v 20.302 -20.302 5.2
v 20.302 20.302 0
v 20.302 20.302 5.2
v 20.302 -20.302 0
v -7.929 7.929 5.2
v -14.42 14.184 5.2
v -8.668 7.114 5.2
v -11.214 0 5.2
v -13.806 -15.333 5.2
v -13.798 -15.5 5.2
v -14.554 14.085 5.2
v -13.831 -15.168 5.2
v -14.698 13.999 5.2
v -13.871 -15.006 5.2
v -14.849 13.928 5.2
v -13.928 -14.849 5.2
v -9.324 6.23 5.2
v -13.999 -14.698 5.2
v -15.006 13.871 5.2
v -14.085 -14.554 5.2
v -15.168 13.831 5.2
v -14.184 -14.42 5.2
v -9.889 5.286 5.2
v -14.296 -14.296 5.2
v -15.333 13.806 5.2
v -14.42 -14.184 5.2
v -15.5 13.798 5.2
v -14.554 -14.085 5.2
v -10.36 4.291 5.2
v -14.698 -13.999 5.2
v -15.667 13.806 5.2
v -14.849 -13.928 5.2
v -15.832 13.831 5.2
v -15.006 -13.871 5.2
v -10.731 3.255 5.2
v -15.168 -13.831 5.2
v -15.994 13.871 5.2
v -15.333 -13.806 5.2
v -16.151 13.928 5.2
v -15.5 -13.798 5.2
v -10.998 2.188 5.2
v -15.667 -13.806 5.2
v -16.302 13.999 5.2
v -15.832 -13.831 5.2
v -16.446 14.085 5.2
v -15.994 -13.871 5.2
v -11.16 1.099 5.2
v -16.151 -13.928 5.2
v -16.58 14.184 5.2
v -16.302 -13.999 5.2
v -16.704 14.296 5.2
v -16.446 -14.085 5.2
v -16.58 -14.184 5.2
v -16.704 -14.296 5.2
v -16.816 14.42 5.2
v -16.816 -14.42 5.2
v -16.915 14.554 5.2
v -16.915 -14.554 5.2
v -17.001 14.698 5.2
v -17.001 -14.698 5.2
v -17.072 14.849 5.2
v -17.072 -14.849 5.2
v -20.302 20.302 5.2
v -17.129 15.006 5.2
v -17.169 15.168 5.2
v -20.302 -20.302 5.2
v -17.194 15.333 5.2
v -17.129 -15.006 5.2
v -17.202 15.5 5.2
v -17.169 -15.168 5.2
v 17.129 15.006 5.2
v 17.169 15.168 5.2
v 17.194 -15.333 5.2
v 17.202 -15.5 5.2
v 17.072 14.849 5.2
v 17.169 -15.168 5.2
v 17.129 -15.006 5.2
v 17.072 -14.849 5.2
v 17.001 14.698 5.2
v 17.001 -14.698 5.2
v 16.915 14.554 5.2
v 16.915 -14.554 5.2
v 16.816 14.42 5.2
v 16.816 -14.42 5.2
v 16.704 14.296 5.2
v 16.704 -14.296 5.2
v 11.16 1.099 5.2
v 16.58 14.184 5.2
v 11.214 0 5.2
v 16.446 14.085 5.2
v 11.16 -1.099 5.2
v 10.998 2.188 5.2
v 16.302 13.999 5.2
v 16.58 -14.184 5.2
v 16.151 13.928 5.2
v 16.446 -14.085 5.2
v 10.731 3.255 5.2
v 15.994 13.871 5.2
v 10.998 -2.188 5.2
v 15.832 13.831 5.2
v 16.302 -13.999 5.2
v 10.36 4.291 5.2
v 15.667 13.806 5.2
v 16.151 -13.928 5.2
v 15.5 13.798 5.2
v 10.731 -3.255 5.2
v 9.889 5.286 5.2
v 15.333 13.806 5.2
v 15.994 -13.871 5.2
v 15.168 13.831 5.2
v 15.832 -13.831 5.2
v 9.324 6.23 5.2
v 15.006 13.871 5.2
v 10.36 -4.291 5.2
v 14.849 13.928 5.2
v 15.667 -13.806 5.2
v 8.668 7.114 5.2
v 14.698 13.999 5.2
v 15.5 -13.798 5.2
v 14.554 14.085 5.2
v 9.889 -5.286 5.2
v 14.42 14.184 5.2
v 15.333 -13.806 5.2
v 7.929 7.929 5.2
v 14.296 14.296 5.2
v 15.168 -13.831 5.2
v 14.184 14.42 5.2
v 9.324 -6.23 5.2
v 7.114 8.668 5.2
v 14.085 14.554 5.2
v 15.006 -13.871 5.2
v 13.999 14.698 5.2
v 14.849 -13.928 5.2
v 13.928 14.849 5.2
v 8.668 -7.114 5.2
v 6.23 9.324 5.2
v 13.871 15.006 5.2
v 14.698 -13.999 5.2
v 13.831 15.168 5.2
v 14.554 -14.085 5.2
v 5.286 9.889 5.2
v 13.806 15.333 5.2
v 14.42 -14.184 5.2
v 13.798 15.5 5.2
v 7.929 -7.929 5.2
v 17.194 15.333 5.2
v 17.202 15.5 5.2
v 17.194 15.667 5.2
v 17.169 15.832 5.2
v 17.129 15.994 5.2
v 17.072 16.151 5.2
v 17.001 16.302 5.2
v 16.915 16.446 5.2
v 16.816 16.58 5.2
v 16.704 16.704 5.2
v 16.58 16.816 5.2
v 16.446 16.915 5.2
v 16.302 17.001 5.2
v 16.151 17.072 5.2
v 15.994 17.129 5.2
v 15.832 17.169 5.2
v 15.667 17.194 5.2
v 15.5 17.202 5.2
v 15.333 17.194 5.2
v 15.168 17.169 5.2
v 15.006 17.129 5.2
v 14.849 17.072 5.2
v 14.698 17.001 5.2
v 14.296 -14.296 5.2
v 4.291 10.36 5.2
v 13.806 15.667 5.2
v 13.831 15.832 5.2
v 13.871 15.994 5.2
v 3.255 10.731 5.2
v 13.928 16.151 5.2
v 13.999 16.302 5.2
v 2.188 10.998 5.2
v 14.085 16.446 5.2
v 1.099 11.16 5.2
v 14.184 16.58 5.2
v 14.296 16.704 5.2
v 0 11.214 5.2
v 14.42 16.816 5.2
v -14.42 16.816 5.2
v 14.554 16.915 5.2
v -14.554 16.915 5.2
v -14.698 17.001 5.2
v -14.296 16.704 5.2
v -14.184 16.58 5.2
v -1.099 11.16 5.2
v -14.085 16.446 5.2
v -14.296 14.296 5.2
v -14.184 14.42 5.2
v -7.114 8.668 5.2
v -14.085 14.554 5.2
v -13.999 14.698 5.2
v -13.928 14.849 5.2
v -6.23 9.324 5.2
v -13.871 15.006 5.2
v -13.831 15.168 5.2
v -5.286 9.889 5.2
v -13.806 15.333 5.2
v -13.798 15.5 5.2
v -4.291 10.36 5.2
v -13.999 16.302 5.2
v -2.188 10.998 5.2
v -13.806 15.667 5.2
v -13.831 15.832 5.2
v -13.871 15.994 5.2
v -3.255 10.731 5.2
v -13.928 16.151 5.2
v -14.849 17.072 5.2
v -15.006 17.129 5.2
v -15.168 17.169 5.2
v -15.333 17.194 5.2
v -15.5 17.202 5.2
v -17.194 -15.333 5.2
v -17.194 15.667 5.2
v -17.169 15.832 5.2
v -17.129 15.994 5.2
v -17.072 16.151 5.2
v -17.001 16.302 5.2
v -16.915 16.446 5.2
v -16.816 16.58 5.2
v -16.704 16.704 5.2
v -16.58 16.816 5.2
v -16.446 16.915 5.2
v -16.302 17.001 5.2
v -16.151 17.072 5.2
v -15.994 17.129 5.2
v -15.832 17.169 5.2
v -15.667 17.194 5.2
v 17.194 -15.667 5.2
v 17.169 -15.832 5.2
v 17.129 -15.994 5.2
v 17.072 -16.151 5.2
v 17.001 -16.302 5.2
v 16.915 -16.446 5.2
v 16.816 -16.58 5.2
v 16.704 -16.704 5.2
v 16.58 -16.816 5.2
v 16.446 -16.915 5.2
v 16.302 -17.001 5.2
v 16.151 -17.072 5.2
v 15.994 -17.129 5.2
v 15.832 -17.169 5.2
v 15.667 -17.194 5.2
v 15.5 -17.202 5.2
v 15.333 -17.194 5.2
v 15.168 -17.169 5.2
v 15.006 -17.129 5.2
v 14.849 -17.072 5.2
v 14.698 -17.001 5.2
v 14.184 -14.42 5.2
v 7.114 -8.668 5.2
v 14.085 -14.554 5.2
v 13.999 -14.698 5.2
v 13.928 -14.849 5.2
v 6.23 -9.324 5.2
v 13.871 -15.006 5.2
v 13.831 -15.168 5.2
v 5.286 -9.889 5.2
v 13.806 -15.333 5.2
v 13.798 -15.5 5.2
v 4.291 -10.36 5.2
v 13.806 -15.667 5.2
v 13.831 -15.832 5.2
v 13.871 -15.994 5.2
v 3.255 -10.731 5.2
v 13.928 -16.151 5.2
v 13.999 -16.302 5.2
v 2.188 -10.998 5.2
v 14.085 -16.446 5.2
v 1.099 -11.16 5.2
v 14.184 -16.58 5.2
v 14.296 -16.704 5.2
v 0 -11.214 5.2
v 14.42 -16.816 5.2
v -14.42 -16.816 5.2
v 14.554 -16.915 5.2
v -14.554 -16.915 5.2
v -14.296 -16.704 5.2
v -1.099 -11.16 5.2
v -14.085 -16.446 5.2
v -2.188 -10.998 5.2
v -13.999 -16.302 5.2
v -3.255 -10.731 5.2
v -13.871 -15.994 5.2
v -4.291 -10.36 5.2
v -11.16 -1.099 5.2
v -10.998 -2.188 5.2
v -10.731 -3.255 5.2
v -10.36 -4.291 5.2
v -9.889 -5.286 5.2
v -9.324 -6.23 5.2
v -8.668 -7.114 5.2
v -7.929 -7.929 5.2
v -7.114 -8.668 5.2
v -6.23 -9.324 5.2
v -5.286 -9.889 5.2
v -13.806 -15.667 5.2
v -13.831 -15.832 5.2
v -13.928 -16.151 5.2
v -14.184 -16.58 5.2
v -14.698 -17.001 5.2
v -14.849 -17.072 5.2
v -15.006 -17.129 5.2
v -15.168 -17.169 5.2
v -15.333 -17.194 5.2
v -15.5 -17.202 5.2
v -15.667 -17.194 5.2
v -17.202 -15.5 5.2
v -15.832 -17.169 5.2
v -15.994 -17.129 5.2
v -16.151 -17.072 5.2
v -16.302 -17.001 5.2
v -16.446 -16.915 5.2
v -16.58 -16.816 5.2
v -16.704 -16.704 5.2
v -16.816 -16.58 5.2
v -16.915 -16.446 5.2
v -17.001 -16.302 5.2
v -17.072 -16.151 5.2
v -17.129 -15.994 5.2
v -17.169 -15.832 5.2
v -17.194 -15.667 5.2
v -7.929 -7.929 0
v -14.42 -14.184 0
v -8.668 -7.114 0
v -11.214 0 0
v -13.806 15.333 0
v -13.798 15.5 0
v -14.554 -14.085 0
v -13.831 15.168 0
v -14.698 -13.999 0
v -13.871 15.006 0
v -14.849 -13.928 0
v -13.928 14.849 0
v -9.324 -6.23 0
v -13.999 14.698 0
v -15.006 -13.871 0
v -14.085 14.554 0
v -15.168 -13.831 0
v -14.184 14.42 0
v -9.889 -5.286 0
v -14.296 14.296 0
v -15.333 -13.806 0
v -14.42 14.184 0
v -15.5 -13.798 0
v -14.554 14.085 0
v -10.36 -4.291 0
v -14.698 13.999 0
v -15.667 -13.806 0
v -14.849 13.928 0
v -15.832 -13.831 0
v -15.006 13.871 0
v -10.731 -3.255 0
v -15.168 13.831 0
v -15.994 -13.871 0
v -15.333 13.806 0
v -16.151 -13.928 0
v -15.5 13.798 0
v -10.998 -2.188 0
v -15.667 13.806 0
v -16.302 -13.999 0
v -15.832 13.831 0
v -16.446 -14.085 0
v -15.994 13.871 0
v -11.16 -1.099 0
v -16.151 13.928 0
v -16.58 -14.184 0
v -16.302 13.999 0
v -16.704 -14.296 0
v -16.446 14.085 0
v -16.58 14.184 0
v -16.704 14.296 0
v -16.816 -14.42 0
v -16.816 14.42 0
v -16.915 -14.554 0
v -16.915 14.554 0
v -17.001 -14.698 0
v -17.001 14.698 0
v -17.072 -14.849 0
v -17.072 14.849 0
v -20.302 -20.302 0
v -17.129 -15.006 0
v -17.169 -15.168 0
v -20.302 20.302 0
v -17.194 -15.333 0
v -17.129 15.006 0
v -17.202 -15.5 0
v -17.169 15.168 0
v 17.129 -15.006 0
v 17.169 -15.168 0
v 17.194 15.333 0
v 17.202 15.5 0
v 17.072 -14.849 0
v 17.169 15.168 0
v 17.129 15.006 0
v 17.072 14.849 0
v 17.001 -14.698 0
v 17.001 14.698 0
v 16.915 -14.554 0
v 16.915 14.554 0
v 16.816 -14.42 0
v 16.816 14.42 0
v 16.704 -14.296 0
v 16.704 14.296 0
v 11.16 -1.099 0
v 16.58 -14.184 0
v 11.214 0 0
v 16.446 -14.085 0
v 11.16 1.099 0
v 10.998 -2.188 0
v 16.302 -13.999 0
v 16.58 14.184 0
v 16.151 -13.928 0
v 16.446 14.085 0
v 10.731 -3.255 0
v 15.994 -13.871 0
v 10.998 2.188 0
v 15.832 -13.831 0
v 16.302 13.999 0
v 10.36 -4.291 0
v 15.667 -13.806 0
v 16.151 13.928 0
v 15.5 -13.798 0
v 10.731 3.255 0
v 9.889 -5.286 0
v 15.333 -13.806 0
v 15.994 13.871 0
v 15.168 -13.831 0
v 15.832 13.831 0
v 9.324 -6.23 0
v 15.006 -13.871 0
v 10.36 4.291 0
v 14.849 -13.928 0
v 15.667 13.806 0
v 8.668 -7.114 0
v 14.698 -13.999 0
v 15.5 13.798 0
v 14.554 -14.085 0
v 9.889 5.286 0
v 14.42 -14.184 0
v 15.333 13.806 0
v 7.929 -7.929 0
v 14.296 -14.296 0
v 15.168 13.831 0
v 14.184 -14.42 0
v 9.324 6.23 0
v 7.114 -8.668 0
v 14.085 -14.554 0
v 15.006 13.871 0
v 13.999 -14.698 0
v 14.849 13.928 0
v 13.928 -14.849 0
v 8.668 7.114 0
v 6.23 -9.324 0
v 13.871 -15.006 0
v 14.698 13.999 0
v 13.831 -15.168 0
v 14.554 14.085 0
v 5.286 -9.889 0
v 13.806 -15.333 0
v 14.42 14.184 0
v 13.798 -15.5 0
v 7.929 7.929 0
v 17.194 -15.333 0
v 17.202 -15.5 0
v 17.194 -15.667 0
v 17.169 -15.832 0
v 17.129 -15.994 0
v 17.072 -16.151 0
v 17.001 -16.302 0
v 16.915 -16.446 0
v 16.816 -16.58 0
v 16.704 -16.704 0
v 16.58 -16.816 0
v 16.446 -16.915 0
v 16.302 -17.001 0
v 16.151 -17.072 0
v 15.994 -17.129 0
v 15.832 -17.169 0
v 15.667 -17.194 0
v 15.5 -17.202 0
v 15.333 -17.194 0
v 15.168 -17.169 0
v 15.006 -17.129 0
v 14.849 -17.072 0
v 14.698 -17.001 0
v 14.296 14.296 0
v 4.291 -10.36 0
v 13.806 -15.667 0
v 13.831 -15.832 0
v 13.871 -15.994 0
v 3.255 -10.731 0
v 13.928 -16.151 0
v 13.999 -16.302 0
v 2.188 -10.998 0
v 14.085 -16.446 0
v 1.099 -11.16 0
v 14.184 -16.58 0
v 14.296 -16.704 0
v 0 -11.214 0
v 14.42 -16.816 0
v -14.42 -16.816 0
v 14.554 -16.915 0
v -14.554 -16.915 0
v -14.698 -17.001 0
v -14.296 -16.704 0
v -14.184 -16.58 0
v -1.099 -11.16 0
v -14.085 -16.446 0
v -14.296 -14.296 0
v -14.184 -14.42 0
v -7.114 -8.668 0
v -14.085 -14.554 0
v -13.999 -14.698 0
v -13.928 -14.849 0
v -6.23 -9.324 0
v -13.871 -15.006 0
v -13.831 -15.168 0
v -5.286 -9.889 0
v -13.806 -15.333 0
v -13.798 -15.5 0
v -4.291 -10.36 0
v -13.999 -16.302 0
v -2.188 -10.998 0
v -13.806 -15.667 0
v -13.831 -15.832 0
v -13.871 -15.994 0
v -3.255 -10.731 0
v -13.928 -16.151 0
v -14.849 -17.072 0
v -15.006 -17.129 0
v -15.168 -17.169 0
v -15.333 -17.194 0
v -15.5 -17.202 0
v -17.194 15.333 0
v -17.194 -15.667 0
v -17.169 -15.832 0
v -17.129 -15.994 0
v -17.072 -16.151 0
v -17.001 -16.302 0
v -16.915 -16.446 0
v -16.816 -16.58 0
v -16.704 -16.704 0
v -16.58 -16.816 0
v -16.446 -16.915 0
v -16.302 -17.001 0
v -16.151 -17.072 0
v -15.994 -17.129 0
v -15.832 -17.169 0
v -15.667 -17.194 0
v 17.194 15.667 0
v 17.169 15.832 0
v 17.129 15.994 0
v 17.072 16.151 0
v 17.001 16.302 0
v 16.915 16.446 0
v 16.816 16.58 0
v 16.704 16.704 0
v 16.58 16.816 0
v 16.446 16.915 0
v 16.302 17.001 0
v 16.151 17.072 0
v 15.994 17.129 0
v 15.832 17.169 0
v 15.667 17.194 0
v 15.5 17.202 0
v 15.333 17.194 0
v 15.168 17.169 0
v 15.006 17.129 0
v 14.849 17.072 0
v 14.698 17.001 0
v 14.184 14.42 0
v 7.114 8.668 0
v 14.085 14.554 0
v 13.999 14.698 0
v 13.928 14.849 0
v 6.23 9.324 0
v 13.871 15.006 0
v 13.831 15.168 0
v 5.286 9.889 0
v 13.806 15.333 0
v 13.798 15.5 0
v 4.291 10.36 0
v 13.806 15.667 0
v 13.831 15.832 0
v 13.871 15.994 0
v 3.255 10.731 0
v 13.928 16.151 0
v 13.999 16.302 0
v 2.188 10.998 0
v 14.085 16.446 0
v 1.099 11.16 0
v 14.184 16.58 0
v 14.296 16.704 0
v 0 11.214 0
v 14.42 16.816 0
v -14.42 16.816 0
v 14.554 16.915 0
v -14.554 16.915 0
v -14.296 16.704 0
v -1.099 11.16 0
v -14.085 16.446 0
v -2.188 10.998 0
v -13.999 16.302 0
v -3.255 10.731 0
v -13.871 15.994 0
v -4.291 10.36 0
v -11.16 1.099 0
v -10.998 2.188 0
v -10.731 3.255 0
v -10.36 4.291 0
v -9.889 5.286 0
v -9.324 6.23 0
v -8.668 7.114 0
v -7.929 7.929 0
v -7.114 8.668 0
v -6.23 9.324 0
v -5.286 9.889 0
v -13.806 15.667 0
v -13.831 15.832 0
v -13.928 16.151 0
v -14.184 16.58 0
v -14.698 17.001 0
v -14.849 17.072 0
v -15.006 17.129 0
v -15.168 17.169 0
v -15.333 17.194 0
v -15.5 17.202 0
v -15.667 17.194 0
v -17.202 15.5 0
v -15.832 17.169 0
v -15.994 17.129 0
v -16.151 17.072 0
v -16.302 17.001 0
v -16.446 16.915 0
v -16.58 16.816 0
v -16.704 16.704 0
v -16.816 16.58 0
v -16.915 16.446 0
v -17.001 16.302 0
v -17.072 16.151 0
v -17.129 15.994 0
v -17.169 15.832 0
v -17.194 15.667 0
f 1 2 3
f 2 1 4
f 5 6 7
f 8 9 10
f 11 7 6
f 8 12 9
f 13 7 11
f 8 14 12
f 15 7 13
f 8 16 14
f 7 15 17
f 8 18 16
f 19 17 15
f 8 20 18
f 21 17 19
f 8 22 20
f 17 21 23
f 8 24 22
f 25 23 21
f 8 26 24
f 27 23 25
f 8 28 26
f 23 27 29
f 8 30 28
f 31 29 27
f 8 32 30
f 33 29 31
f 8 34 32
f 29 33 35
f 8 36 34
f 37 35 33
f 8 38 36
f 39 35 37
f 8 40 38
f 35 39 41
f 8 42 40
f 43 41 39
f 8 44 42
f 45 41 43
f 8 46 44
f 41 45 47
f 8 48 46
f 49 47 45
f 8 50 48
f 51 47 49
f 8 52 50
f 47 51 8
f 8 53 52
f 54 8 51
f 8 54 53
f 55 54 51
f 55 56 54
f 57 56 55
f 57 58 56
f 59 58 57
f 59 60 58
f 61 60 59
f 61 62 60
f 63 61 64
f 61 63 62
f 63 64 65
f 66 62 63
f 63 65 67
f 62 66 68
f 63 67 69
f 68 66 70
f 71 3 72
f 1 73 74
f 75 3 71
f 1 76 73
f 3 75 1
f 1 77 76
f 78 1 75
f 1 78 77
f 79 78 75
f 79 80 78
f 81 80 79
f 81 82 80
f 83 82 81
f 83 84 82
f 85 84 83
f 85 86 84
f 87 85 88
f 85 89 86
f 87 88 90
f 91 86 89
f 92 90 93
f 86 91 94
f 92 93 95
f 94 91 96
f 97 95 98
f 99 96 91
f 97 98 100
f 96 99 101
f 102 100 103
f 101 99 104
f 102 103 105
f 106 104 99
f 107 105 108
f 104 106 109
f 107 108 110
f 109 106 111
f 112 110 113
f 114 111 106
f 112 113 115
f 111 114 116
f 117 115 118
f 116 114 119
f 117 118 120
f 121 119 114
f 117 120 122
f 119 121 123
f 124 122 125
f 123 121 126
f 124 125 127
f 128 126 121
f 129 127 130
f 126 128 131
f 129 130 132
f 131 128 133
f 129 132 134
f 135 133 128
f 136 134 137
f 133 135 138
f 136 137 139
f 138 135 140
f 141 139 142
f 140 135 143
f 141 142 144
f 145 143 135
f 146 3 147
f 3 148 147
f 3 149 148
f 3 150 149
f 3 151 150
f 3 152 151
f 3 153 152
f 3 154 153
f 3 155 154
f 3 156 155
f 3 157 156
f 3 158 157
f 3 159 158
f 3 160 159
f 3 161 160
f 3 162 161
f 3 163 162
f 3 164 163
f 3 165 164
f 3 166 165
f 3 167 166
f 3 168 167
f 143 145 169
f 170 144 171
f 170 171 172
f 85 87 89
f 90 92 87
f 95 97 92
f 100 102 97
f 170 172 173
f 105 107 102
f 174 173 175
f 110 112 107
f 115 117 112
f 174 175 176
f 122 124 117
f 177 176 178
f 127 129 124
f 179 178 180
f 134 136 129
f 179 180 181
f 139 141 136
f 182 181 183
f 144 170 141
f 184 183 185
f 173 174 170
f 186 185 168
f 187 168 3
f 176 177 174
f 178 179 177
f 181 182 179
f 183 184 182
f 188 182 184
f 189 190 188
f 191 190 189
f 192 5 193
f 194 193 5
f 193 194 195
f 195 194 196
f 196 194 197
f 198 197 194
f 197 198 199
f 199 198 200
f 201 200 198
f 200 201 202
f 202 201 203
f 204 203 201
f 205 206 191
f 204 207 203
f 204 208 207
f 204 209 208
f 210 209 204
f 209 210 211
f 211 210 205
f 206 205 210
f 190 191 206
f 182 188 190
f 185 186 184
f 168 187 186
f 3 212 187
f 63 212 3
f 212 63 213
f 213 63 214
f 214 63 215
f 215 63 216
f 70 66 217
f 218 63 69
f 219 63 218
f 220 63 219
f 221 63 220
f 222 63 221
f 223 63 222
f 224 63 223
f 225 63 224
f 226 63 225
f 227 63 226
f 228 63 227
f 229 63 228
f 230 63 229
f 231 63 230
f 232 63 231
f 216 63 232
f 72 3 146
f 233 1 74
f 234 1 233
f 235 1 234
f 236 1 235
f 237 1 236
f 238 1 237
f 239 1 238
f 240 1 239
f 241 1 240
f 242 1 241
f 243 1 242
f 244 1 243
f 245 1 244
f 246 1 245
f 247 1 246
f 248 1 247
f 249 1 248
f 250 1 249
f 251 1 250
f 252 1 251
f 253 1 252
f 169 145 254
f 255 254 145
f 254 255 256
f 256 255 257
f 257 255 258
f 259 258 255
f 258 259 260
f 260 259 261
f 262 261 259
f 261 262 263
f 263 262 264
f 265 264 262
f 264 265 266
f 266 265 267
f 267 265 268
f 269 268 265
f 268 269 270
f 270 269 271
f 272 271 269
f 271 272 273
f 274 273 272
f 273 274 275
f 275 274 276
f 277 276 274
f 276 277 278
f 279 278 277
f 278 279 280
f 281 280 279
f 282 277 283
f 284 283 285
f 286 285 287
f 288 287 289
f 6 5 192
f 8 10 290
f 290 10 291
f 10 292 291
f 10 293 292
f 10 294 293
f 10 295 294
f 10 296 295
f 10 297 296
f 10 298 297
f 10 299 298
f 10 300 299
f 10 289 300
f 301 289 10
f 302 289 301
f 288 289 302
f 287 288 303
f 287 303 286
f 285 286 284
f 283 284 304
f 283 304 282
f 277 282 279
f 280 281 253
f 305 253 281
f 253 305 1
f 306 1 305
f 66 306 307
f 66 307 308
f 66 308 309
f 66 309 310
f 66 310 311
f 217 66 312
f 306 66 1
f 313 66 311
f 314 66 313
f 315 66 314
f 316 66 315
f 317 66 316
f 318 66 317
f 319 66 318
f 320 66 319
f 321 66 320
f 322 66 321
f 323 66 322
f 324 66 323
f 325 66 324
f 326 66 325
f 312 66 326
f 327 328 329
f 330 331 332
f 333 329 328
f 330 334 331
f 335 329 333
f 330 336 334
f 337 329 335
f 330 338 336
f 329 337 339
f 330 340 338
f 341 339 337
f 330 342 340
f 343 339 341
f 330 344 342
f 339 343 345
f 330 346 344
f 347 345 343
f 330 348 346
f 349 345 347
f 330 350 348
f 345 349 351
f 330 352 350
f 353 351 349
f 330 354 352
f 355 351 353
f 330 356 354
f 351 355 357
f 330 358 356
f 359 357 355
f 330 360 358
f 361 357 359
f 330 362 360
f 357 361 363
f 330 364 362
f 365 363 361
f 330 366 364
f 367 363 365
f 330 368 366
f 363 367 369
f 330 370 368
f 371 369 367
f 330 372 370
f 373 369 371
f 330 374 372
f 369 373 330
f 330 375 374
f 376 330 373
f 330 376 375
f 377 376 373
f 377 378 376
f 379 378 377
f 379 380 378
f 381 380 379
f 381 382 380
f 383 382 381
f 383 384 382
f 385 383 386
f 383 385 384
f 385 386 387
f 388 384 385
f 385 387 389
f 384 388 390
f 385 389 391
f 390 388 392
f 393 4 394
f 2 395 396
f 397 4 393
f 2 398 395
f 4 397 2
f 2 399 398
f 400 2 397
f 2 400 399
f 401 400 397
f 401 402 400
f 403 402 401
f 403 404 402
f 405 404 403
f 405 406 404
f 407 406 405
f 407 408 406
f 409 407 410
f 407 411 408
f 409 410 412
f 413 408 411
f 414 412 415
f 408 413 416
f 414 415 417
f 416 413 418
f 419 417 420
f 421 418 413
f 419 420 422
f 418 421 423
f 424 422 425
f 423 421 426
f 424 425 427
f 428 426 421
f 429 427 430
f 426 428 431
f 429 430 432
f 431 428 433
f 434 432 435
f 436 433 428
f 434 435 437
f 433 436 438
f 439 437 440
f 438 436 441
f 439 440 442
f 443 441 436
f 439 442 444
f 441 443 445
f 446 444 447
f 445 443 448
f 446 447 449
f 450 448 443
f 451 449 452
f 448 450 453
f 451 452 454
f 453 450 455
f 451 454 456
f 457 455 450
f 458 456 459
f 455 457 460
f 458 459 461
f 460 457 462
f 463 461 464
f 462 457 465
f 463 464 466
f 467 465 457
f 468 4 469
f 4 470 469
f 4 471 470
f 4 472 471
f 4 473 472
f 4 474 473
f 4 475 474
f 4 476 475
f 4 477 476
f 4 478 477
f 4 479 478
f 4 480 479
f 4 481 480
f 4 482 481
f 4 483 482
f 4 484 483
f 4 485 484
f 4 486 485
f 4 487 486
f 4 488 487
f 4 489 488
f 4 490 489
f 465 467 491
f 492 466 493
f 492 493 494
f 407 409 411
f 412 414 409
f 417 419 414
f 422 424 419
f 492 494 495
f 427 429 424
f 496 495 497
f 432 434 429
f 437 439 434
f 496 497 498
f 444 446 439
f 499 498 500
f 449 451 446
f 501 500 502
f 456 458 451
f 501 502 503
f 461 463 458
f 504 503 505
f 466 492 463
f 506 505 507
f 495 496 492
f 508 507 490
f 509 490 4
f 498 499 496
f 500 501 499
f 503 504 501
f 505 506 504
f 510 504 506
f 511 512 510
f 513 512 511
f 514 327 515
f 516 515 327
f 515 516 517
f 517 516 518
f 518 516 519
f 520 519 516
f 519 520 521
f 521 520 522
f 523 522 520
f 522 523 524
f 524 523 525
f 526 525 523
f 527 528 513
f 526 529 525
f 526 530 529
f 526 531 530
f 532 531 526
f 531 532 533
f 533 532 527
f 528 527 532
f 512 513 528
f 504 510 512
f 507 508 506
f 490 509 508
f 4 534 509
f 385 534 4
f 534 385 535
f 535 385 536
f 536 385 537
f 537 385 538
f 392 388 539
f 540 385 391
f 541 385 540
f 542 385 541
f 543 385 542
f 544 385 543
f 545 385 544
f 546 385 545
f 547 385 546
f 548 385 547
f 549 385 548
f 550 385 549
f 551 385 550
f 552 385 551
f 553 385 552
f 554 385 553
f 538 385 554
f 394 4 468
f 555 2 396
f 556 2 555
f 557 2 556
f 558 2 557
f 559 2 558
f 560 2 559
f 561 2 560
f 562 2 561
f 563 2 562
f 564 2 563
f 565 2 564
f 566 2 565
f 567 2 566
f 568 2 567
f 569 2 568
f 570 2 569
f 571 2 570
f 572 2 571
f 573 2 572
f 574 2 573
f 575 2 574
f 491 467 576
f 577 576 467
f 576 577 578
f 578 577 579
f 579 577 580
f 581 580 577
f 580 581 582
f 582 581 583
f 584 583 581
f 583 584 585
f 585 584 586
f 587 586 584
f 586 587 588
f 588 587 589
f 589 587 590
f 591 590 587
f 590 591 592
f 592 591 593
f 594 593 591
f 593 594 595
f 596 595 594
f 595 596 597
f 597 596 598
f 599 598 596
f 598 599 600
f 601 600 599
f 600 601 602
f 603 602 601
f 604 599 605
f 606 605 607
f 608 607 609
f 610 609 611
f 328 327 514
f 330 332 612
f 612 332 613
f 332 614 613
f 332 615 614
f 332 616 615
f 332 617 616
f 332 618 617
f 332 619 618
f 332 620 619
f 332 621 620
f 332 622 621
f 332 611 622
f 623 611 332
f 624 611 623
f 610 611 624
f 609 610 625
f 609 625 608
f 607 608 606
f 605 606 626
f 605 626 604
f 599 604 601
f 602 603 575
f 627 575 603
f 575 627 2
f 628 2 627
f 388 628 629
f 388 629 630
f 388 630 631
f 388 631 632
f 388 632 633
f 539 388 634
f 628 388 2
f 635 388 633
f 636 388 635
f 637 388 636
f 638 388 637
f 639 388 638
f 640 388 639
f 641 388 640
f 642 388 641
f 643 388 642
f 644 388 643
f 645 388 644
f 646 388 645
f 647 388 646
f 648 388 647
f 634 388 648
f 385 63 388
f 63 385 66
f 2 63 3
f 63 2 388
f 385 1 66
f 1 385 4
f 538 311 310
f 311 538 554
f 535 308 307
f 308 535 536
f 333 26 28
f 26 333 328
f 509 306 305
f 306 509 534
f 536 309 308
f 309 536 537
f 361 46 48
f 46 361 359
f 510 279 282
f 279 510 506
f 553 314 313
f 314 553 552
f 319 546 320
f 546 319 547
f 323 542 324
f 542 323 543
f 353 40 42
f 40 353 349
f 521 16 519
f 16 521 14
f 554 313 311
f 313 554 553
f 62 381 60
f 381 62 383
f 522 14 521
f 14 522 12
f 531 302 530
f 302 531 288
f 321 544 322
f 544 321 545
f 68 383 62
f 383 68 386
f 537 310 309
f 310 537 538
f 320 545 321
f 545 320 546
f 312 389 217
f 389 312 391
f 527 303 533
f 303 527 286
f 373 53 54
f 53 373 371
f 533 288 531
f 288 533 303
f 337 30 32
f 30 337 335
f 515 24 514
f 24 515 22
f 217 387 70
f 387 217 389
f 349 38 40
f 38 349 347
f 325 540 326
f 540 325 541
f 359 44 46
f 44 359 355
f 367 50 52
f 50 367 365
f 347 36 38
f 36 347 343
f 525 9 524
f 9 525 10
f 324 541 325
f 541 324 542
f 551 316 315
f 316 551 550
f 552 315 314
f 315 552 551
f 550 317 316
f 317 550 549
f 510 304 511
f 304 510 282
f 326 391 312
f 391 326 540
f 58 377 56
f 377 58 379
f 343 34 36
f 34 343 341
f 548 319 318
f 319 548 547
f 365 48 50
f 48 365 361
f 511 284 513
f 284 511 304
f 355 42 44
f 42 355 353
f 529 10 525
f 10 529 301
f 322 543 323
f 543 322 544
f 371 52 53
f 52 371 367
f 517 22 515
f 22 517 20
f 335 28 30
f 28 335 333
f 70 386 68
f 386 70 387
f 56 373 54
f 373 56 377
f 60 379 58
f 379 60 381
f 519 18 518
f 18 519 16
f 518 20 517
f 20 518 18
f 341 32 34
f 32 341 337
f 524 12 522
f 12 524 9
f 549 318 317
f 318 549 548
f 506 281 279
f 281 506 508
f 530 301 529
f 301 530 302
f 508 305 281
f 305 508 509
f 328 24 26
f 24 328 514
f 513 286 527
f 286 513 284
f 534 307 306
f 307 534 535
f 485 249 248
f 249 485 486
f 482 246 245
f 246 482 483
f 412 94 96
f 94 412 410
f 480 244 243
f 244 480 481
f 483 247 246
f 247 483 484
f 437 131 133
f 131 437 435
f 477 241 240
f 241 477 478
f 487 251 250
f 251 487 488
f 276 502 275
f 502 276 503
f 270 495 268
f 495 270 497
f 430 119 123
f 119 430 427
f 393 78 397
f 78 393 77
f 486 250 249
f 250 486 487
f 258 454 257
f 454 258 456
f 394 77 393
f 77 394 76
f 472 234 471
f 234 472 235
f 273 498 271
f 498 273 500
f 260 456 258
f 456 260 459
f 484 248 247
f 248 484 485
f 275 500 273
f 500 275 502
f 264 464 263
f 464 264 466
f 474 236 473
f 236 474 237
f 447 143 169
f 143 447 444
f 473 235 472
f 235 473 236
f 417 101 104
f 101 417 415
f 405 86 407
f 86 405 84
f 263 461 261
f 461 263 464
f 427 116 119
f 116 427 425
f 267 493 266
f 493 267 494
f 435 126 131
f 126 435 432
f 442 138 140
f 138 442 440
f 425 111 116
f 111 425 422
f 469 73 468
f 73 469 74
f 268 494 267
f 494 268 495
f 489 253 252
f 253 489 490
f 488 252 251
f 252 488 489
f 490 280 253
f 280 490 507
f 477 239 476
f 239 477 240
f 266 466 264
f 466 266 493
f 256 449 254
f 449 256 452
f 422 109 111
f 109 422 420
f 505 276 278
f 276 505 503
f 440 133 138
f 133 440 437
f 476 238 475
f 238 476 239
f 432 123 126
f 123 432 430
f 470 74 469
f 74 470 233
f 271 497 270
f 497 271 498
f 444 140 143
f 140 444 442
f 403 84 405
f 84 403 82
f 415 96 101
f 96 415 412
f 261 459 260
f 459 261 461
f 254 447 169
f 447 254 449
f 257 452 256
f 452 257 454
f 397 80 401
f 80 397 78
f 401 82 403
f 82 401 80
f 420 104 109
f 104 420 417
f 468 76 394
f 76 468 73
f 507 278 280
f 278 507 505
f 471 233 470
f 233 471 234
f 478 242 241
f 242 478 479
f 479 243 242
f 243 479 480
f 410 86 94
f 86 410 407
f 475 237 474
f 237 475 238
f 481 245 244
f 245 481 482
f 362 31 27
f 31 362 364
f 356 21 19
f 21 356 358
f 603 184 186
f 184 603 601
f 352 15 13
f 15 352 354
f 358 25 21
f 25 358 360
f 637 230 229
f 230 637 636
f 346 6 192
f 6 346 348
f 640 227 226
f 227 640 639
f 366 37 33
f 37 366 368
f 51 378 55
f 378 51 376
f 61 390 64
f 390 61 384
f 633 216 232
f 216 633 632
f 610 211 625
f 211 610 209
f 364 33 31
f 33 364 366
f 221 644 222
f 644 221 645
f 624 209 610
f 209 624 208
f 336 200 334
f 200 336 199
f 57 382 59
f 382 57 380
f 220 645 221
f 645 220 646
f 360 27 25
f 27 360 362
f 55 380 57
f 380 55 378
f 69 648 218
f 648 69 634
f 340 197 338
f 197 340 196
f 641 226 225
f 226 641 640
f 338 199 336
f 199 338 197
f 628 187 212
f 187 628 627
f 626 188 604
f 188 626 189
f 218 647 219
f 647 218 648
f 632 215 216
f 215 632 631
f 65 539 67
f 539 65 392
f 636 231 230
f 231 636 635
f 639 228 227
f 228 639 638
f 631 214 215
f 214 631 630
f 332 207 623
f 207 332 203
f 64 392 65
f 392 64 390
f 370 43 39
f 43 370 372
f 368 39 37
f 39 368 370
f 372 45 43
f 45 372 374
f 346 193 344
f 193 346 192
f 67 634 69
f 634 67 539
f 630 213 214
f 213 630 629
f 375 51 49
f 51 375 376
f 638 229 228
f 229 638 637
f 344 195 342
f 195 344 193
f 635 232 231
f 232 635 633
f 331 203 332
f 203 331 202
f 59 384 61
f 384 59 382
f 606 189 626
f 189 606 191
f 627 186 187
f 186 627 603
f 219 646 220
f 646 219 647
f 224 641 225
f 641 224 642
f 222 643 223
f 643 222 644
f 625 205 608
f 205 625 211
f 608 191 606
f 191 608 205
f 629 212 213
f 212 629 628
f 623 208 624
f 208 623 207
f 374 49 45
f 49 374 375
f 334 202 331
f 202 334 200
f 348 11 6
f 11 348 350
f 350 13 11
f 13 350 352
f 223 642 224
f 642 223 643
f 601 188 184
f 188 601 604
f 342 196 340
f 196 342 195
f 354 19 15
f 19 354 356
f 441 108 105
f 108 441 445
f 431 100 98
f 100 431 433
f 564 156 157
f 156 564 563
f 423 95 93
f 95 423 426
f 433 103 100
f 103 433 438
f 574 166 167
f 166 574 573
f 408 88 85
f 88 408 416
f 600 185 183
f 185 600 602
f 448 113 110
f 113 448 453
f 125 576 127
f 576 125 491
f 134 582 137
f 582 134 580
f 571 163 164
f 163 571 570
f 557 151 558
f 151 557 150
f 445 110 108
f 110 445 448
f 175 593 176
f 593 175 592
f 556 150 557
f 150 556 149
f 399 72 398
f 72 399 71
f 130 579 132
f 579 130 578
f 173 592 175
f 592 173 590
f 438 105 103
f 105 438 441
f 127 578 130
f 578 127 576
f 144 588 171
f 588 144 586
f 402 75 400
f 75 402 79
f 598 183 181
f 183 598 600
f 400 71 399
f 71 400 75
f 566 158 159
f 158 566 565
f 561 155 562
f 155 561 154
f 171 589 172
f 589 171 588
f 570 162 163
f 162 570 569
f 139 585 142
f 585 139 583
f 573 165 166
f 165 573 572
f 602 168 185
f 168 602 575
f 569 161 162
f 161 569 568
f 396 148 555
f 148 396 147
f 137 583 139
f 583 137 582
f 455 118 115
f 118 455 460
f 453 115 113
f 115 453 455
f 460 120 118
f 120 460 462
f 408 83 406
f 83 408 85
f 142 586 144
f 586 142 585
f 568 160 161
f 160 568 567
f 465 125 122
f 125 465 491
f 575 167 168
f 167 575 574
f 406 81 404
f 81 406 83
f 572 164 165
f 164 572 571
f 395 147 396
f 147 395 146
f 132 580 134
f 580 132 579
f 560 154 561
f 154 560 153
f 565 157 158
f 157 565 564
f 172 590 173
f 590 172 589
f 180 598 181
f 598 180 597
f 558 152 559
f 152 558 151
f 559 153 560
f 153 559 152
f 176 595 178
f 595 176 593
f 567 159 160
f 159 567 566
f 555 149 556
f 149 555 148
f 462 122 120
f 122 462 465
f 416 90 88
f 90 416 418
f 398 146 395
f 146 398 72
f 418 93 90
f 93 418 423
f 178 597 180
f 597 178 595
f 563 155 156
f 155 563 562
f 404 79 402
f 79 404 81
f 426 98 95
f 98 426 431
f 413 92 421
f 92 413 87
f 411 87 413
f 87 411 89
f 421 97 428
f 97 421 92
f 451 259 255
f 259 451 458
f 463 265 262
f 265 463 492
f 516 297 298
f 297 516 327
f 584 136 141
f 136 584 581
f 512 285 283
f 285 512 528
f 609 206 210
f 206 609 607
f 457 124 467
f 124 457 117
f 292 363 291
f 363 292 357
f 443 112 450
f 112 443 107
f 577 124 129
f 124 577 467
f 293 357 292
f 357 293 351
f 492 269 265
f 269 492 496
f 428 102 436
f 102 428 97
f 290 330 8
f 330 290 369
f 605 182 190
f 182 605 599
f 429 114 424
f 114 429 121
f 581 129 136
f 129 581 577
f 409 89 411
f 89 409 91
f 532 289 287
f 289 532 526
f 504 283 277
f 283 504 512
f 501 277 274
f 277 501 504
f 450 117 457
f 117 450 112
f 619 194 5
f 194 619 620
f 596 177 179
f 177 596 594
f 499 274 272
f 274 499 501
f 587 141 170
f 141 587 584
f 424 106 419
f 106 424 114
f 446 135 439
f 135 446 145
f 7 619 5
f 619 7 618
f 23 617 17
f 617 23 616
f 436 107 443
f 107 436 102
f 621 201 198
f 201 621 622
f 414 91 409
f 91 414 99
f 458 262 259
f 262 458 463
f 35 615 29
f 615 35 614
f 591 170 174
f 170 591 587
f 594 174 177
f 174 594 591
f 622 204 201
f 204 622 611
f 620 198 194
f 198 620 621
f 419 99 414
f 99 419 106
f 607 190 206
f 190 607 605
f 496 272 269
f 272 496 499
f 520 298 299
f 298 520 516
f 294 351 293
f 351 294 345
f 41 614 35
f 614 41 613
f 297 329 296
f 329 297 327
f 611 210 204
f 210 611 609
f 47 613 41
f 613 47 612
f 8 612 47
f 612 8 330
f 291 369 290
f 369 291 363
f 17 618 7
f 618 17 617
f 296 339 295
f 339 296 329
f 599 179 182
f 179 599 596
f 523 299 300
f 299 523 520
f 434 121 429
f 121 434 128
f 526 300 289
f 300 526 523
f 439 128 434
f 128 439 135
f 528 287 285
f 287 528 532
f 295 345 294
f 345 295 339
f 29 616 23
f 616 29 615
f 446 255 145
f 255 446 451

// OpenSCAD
// body plate
difference() {
  union() {
    // body plate (plate)
    multmatrix([[1, 0, 0, 0], [0, 1, 0, 0], [0, 0, 1, 0], [0, 0, 0, 1]]) translate([-20.30205, -20.30205, 0]) cube([40.6041, 40.6041, 5.2]);
  }
  // cut slot_0 (bolt_slot)
  multmatrix([[1, 0, 0, -15.5], [0, 1, 0, -15.5], [0, 0, 1, -1], [0, 0, 0, 1]]) linear_extrude(height=7.2) polygon(points=[[0, -1.70205], [0.16683, -1.693854], [0.332054, -1.669346], [0.494079, -1.62876], [0.651346, -1.572489], [0.802341, -1.501074], [0.945608, -1.415203], [1.079769, -1.315703], [1.203531, -1.203531], [1.315703, -1.079769], [1.415203, -0.945608], [1.501074, -0.802341], [1.572489, -0.651346], [1.62876, -0.494079], [1.669346, -0.332054], [1.693854, -0.16683], [1.70205, 0], [1.70205, 0], [1.693854, 0.16683], [1.669346, 0.332054], [1.62876, 0.494079], [1.572489, 0.651346], [1.501074, 0.802341], [1.415203, 0.945608], [1.315703, 1.079769], [1.203531, 1.203531], [1.079769, 1.315703], [0.945608, 1.415203], [0.802341, 1.501074], [0.651346, 1.572489], [0.494079, 1.62876], [0.332054, 1.669346], [0.16683, 1.693854], [0, 1.70205], [0, 1.70205], [-0.16683, 1.693854], [-0.332054, 1.669346], [-0.494079, 1.62876], [-0.651346, 1.572489], [-0.802341, 1.501074], [-0.945608, 1.415203], [-1.079769, 1.315703], [-1.203531, 1.203531], [-1.315703, 1.079769], [-1.415203, 0.945608], [-1.501074, 0.802341], [-1.572489, 0.651346], [-1.62876, 0.494079], [-1.669346, 0.332054], [-1.693854, 0.16683], [-1.70205, 0], [-1.70205, 0], [-1.693854, -0.16683], [-1.669346, -0.332054], [-1.62876, -0.494079], [-1.572489, -0.651346], [-1.501074, -0.802341], [-1.415203, -0.945608], [-1.315703, -1.079769], [-1.203531, -1.203531], [-1.079769, -1.315703], [-0.945608, -1.415203], [-0.802341, -1.501074], [-0.651346, -1.572489], [-0.494079, -1.62876], [-0.332054, -1.669346], [-0.16683, -1.693854], [0, -1.70205]]);
  // cut slot_1 (bolt_slot)
  multmatrix([[1, 0, 0, 15.5], [0, 1, 0, -15.5], [0, 0, 1, -1], [0, 0, 0, 1]]) linear_extrude(height=7.2) polygon(points=[[0, -1.70205], [0.16683, -1.693854], [0.332054, -1.669346], [0.494079, -1.62876], [0.651346, -1.572489], [0.802341, -1.501074], [0.945608, -1.415203], [1.079769, -1.315703], [1.203531, -1.203531], [1.315703, -1.079769], [1.415203, -0.945608], [1.501074, -0.802341], [1.572489, -0.651346], [1.62876, -0.494079], [1.669346, -0.332054], [1.693854, -0.16683], [1.70205, 0], [1.70205, 0], [1.693854, 0.16683], [1.669346, 0.332054], [1.62876, 0.494079], [1.572489, 0.651346], [1.501074, 0.802341], [1.415203, 0.945608], [1.315703, 1.079769], [1.203531, 1.203531], [1.079769, 1.315703], [0.945608, 1.415203], [0.802341, 1.501074], [0.651346, 1.572489], [0.494079, 1.62876], [0.332054, 1.669346], [0.16683, 1.693854], [0, 1.70205], [0, 1.70205], [-0.16683, 1.693854], [-0.332054, 1.669346], [-0.494079, 1.62876], [-0.651346, 1.572489], [-0.802341, 1.501074], [-0.945608, 1.415203], [-1.079769, 1.315703], [-1.203531, 1.203531], [-1.315703, 1.079769], [-1.415203, 0.945608], [-1.501074, 0.802341], [-1.572489, 0.651346], [-1.62876, 0.494079], [-1.669346, 0.332054], [-1.693854, 0.16683], [-1.70205, 0], [-1.70205, 0], [-1.693854, -0.16683], [-1.669346, -0.332054], [-1.62876, -0.494079], [-1.572489, -0.651346], [-1.501074, -0.802341], [-1.415203, -0.945608], [-1.315703, -1.079769], [-1.203531, -1.203531], [-1.079769, -1.315703], [-0.945608, -1.415203], [-0.802341, -1.501074], [-0.651346, -1.572489], [-0.494079, -1.62876], [-0.332054, -1.669346], [-0.16683, -1.693854], [0, -1.70205]]);
  // cut slot_2 (bolt_slot)
  multmatrix([[1, 0, 0, -15.5], [0, 1, 0, 15.5], [0, 0, 1, -1], [0, 0, 0, 1]]) linear_extrude(height=7.2) polygon(points=[[0, -1.70205], [0.16683, -1.693854], [0.332054, -1.669346], [0.494079, -1.62876], [0.651346, -1.572489], [0.802341, -1.501074], [0.945608, -1.415203], [1.079769, -1.315703], [1.203531, -1.203531], [1.315703, -1.079769], [1.415203, -0.945608], [1.501074, -0.802341], [1.572489, -0.651346], [1.62876, -0.494079], [1.669346, -0.332054], [1.693854, -0.16683], [1.70205, 0], [1.70205, 0], [1.693854, 0.16683], [1.669346, 0.332054], [1.62876, 0.494079], [1.572489, 0.651346], [1.501074, 0.802341], [1.415203, 0.945608], [1.315703, 1.079769], [1.203531, 1.203531], [1.079769, 1.315703], [0.945608, 1.415203], [0.802341, 1.501074], [0.651346, 1.572489], [0.494079, 1.62876], [0.332054, 1.669346], [0.16683, 1.693854], [0, 1.70205], [0, 1.70205], [-0.16683, 1.693854], [-0.332054, 1.669346], [-0.494079, 1.62876], [-0.651346, 1.572489], [-0.802341, 1.501074], [-0.945608, 1.415203], [-1.079769, 1.315703], [-1.203531, 1.203531], [-1.315703, 1.079769], [-1.415203, 0.945608], [-1.501074, 0.802341], [-1.572489, 0.651346], [-1.62876, 0.494079], [-1.669346, 0.332054], [-1.693854, 0.16683], [-1.70205, 0], [-1.70205, 0], [-1.693854, -0.16683], [-1.669346, -0.332054], [-1.62876, -0.494079], [-1.572489, -0.651346], [-1.501074, -0.802341], [-1.415203, -0.945608], [-1.315703, -1.079769], [-1.203531, -1.203531], [-1.079769, -1.315703], [-0.945608, -1.415203], [-0.802341, -1.501074], [-0.651346, -1.572489], [-0.494079, -1.62876], [-0.332054, -1.669346], [-0.16683, -1.693854], [0, -1.70205]]);
  // cut slot_3 (bolt_slot)
  multmatrix([[1, 0, 0, 15.5], [0, 1, 0, 15.5], [0, 0, 1, -1], [0, 0, 0, 1]]) linear_extrude(height=7.2) polygon(points=[[0, -1.70205], [0.16683, -1.693854], [0.332054, -1.669346], [0.494079, -1.62876], [0.651346, -1.572489], [0.802341, -1.501074], [0.945608, -1.415203], [1.079769, -1.315703], [1.203531, -1.203531], [1.315703, -1.079769], [1.415203, -0.945608], [1.501074, -0.802341], [1.572489, -0.651346], [1.62876, -0.494079], [1.669346, -0.332054], [1.693854, -0.16683], [1.70205, 0], [1.70205, 0], [1.693854, 0.16683], [1.669346, 0.332054], [1.62876, 0.494079], [1.572489, 0.651346], [1.501074, 0.802341], [1.415203, 0.945608], [1.315703, 1.079769], [1.203531, 1.203531], [1.079769, 1.315703], [0.945608, 1.415203], [0.802341, 1.501074], [0.651346, 1.572489], [0.494079, 1.62876], [0.332054, 1.669346], [0.16683, 1.693854], [0, 1.70205], [0, 1.70205], [-0.16683, 1.693854], [-0.332054, 1.669346], [-0.494079, 1.62876], [-0.651346, 1.572489], [-0.802341, 1.501074], [-0.945608, 1.415203], [-1.079769, 1.315703], [-1.203531, 1.203531], [-1.315703, 1.079769], [-1.415203, 0.945608], [-1.501074, 0.802341], [-1.572489, 0.651346], [-1.62876, 0.494079], [-1.669346, 0.332054], [-1.693854, 0.16683], [-1.70205, 0], [-1.70205, 0], [-1.693854, -0.16683], [-1.669346, -0.332054], [-1.62876, -0.494079], [-1.572489, -0.651346], [-1.501074, -0.802341], [-1.415203, -0.945608], [-1.315703, -1.079769], [-1.203531, -1.203531], [-1.079769, -1.315703], [-0.945608, -1.415203], [-0.802341, -1.501074], [-0.651346, -1.572489], [-0.494079, -1.62876], [-0.332054, -1.669346], [-0.16683, -1.693854], [0, -1.70205]]);
  // cut clear_pilot (recess)
  multmatrix([[1, 0, 0, 0], [0, 1, 0, 0], [0, 0, 1, -1], [0, 0, 0, 1]]) cylinder(h=7.2, d=22.427014, $fn=64);
  // cut clear_shaft (recess)
  multmatrix([[1, 0, 0, 0], [0, 1, 0, 0], [0, 0, 1, -1], [0, 0, 0, 1]]) cylinder(h=7.2, d=5.406512, $fn=64);
}
